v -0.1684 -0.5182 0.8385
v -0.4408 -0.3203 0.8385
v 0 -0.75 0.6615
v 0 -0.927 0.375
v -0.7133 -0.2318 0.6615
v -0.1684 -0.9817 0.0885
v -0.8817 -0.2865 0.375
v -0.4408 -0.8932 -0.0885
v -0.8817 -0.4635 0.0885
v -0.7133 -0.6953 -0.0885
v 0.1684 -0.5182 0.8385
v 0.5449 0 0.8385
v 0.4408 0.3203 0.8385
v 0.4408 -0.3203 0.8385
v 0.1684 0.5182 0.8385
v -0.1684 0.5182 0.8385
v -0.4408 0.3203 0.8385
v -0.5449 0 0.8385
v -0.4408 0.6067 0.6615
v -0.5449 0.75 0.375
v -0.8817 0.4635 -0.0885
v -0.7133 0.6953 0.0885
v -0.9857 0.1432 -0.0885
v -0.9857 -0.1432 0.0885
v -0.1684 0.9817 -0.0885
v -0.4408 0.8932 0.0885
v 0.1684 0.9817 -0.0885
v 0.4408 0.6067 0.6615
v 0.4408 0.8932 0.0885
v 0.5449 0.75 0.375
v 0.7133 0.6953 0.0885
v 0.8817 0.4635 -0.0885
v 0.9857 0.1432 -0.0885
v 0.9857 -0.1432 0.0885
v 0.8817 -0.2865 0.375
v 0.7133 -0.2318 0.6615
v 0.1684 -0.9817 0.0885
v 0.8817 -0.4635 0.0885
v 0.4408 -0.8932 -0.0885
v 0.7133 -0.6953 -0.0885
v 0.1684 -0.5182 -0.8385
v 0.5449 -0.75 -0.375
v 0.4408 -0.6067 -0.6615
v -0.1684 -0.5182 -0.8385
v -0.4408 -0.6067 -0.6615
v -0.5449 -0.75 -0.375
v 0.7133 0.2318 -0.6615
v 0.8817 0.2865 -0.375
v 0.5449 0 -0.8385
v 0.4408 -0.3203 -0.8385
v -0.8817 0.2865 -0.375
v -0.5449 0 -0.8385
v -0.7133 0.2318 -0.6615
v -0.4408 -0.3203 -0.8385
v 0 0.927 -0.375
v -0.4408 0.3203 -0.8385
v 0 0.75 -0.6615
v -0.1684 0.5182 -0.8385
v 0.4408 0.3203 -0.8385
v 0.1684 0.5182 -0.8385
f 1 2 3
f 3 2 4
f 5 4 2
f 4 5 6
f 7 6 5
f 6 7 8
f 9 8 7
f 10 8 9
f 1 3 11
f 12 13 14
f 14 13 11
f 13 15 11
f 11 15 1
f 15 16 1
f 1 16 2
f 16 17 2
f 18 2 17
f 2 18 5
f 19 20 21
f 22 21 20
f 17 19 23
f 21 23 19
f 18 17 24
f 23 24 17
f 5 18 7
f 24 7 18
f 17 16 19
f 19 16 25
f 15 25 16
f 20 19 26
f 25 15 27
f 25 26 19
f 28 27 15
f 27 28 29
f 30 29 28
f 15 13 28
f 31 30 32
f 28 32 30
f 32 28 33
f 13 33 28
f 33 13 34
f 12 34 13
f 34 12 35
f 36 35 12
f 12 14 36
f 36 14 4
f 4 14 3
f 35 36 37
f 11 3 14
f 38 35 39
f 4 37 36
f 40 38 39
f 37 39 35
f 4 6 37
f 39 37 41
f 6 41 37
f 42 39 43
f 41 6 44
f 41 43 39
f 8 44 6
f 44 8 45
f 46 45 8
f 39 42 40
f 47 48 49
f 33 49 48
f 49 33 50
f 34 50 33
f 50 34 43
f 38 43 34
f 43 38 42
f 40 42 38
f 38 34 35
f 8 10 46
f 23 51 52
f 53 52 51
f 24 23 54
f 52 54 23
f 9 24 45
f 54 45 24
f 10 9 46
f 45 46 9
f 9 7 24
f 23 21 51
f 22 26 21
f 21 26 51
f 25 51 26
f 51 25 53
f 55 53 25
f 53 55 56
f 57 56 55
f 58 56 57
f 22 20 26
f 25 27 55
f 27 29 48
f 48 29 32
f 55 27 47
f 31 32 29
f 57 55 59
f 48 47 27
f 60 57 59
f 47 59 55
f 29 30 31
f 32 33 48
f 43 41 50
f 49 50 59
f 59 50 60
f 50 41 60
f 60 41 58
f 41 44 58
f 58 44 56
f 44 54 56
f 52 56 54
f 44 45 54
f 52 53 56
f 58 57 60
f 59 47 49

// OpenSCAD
polyhedron( points = [[-0.168381405777504, -0.518224680252581, 0.838505146905327], [-0.440828243451024, -0.320280466032294, 0.838505146905327], [-0.544893675245541, 3.47295688691238e-10, 0.838505146905327], [-0.440828243364747, 0.320280466698849, 0.838505146905327], [-0.168381405730971, 0.518224680815505, 0.838505146905327], [0.168381405812861, 0.518224680785267, 0.838505146905327], [0.440828243411088, 0.320280466619682, 0.838505146905327], [0.544893675234364, 2.49439149396465e-10, 0.838505146905327], [0.440828243382328, -0.320280466111461, 0.838505146905327], [0.168381405766327, -0.518224680252581, 0.838505146905327], [3.14105600678575e-12, -0.749981803096208, 0.661458459493757], [-1.59158428013788e-10, -0.927028490682286, 0.374990901675481], [0.168381405568627, -0.981738926169827, 0.088523343770404], [0.440828243210057, -0.893215582747639, -0.0885233437124271], [0.713275080984933, -0.695271368825191, -0.0885233438663951], [0.881656486971356, -0.463514246231955, 0.0885233434102832], [0.881656486673876, -0.286467557651621, 0.374990901554712], [0.713275080963397, -0.231757122402544, 0.661458459436471], [-0.168381406024815, -0.981738926055715, 0.0885233438982324], [-0.440828243672306, -0.893215582429856, -0.0885233434734367], [-0.713275081253466, -0.695271368270138, -0.0885233434628624], [-0.881656486945468, -0.463514245505002, 0.0885233439259176], [-0.881656486851003, -0.286467557890956, 0.3749909017097], [-0.713275081006155, -0.231757122497244, 0.661458459495306], [-0.985721918527097, -0.143233778580959, 0.0885233436266027], [-0.985721918445628, 0.143233779280019, -0.0885233438094317], [-0.881656486558403, 0.463514245629488, -0.0885233437959073], [-0.713275080790209, 0.695271368261373, 0.0885233436620066], [-0.544893675067447, 0.749981803470068, 0.374990901554712], [-0.440828243307126, 0.606748024539544, 0.661458459436471], [-0.440828243322188, 0.893215582288215, 0.0885233436266027], [-0.16838140568935, 0.981738925936651, -0.0885233438094317], [0.168381405854482, 0.98173892589965, -0.0885233437959073], [0.440828243453648, 0.893215582191346, 0.0885233436620066], [0.54489367527844, 0.749981803308651, 0.374990901554712], [0.440828243419039, 0.606748024450113, 0.661458459436471], [0.713275080915236, 0.69527136815565, 0.0885233436266027], [0.8816564866369, 0.46351424547324, -0.0885233438094317], [0.985721918453744, 0.143233779100909, -0.0885233437959073], [0.985721918467868, -0.143233778746549, 0.0885233436620066], [0.544893675080063, -0.749981803988471, -0.374990901605472], [0.440828243280414, -0.606748024992877, -0.661458459564496], [0.168381405670488, -0.518224681103971, -0.838505146915555], [-0.168381405881719, -0.518224680833291, -0.83850514679858], [-0.440828243517351, -0.606748024284229, -0.66145845925825], [-0.544893675392773, -0.749981803058175, -0.374990901335651], [-0.440828242945158, -0.320280466055912, -0.838505146766019], [-0.544893674774608, 3.12326222286501e-10, -0.838505146800988], [-0.713275080604309, 0.231757122967822, -0.661458459432475], [-0.88165648647793, 0.286467558182923, -0.374990901640115], [-0.440828243230888, 0.320280466210441, -0.838505146766015], [-0.168381405618702, 0.518224680356814, -0.838505146800985], [1.34177139846694e-10, 0.749981803068125, -0.661458459432475], [9.67870503280284e-11, 0.927028490598288, -0.374990901640115], [0.168381405389722, 0.518224680507034, -0.838505146766019], [0.440828243009542, 0.320280466371165, -0.838505146800988], [0.713275080679512, 0.231757122701972, -0.661458459432475], [0.881656486530025, 0.28646755798819, -0.374990901640118], [0.544893675760374, -9.15005781426898e-10, -0.838505147340401], [0.440828243540229, -0.320280467101501, -0.838505147203396]], faces = [[0, 1, 23, 22, 21, 20, 19, 18, 11, 10], [0, 10, 9], [0, 9, 8, 7, 6, 5, 4, 3, 2, 1], [1, 2, 23], [2, 3, 29, 28, 27, 26, 25, 24, 22, 23], [3, 4, 29], [4, 5, 35, 34, 33, 32, 31, 30, 28, 29], [5, 6, 35], [6, 7, 17, 16, 39, 38, 37, 36, 34, 35], [7, 8, 17], [8, 9, 10, 11, 12, 13, 14, 15, 16, 17], [11, 18, 12], [12, 18, 19, 45, 44, 43, 42, 41, 40, 13], [13, 40, 14], [14, 40, 41, 59, 58, 56, 57, 38, 39, 15], [15, 39, 16], [19, 20, 45], [20, 21, 24, 25, 49, 48, 47, 46, 44, 45], [21, 22, 24], [25, 26, 49], [26, 27, 30, 31, 53, 52, 51, 50, 48, 49], [27, 28, 30], [31, 32, 53], [32, 33, 36, 37, 57, 56, 55, 54, 52, 53], [33, 34, 36], [37, 38, 57], [41, 42, 59], [42, 43, 46, 47, 50, 51, 54, 55, 58, 59], [43, 44, 46], [47, 48, 50], [51, 52, 54], [55, 56, 58]]);
